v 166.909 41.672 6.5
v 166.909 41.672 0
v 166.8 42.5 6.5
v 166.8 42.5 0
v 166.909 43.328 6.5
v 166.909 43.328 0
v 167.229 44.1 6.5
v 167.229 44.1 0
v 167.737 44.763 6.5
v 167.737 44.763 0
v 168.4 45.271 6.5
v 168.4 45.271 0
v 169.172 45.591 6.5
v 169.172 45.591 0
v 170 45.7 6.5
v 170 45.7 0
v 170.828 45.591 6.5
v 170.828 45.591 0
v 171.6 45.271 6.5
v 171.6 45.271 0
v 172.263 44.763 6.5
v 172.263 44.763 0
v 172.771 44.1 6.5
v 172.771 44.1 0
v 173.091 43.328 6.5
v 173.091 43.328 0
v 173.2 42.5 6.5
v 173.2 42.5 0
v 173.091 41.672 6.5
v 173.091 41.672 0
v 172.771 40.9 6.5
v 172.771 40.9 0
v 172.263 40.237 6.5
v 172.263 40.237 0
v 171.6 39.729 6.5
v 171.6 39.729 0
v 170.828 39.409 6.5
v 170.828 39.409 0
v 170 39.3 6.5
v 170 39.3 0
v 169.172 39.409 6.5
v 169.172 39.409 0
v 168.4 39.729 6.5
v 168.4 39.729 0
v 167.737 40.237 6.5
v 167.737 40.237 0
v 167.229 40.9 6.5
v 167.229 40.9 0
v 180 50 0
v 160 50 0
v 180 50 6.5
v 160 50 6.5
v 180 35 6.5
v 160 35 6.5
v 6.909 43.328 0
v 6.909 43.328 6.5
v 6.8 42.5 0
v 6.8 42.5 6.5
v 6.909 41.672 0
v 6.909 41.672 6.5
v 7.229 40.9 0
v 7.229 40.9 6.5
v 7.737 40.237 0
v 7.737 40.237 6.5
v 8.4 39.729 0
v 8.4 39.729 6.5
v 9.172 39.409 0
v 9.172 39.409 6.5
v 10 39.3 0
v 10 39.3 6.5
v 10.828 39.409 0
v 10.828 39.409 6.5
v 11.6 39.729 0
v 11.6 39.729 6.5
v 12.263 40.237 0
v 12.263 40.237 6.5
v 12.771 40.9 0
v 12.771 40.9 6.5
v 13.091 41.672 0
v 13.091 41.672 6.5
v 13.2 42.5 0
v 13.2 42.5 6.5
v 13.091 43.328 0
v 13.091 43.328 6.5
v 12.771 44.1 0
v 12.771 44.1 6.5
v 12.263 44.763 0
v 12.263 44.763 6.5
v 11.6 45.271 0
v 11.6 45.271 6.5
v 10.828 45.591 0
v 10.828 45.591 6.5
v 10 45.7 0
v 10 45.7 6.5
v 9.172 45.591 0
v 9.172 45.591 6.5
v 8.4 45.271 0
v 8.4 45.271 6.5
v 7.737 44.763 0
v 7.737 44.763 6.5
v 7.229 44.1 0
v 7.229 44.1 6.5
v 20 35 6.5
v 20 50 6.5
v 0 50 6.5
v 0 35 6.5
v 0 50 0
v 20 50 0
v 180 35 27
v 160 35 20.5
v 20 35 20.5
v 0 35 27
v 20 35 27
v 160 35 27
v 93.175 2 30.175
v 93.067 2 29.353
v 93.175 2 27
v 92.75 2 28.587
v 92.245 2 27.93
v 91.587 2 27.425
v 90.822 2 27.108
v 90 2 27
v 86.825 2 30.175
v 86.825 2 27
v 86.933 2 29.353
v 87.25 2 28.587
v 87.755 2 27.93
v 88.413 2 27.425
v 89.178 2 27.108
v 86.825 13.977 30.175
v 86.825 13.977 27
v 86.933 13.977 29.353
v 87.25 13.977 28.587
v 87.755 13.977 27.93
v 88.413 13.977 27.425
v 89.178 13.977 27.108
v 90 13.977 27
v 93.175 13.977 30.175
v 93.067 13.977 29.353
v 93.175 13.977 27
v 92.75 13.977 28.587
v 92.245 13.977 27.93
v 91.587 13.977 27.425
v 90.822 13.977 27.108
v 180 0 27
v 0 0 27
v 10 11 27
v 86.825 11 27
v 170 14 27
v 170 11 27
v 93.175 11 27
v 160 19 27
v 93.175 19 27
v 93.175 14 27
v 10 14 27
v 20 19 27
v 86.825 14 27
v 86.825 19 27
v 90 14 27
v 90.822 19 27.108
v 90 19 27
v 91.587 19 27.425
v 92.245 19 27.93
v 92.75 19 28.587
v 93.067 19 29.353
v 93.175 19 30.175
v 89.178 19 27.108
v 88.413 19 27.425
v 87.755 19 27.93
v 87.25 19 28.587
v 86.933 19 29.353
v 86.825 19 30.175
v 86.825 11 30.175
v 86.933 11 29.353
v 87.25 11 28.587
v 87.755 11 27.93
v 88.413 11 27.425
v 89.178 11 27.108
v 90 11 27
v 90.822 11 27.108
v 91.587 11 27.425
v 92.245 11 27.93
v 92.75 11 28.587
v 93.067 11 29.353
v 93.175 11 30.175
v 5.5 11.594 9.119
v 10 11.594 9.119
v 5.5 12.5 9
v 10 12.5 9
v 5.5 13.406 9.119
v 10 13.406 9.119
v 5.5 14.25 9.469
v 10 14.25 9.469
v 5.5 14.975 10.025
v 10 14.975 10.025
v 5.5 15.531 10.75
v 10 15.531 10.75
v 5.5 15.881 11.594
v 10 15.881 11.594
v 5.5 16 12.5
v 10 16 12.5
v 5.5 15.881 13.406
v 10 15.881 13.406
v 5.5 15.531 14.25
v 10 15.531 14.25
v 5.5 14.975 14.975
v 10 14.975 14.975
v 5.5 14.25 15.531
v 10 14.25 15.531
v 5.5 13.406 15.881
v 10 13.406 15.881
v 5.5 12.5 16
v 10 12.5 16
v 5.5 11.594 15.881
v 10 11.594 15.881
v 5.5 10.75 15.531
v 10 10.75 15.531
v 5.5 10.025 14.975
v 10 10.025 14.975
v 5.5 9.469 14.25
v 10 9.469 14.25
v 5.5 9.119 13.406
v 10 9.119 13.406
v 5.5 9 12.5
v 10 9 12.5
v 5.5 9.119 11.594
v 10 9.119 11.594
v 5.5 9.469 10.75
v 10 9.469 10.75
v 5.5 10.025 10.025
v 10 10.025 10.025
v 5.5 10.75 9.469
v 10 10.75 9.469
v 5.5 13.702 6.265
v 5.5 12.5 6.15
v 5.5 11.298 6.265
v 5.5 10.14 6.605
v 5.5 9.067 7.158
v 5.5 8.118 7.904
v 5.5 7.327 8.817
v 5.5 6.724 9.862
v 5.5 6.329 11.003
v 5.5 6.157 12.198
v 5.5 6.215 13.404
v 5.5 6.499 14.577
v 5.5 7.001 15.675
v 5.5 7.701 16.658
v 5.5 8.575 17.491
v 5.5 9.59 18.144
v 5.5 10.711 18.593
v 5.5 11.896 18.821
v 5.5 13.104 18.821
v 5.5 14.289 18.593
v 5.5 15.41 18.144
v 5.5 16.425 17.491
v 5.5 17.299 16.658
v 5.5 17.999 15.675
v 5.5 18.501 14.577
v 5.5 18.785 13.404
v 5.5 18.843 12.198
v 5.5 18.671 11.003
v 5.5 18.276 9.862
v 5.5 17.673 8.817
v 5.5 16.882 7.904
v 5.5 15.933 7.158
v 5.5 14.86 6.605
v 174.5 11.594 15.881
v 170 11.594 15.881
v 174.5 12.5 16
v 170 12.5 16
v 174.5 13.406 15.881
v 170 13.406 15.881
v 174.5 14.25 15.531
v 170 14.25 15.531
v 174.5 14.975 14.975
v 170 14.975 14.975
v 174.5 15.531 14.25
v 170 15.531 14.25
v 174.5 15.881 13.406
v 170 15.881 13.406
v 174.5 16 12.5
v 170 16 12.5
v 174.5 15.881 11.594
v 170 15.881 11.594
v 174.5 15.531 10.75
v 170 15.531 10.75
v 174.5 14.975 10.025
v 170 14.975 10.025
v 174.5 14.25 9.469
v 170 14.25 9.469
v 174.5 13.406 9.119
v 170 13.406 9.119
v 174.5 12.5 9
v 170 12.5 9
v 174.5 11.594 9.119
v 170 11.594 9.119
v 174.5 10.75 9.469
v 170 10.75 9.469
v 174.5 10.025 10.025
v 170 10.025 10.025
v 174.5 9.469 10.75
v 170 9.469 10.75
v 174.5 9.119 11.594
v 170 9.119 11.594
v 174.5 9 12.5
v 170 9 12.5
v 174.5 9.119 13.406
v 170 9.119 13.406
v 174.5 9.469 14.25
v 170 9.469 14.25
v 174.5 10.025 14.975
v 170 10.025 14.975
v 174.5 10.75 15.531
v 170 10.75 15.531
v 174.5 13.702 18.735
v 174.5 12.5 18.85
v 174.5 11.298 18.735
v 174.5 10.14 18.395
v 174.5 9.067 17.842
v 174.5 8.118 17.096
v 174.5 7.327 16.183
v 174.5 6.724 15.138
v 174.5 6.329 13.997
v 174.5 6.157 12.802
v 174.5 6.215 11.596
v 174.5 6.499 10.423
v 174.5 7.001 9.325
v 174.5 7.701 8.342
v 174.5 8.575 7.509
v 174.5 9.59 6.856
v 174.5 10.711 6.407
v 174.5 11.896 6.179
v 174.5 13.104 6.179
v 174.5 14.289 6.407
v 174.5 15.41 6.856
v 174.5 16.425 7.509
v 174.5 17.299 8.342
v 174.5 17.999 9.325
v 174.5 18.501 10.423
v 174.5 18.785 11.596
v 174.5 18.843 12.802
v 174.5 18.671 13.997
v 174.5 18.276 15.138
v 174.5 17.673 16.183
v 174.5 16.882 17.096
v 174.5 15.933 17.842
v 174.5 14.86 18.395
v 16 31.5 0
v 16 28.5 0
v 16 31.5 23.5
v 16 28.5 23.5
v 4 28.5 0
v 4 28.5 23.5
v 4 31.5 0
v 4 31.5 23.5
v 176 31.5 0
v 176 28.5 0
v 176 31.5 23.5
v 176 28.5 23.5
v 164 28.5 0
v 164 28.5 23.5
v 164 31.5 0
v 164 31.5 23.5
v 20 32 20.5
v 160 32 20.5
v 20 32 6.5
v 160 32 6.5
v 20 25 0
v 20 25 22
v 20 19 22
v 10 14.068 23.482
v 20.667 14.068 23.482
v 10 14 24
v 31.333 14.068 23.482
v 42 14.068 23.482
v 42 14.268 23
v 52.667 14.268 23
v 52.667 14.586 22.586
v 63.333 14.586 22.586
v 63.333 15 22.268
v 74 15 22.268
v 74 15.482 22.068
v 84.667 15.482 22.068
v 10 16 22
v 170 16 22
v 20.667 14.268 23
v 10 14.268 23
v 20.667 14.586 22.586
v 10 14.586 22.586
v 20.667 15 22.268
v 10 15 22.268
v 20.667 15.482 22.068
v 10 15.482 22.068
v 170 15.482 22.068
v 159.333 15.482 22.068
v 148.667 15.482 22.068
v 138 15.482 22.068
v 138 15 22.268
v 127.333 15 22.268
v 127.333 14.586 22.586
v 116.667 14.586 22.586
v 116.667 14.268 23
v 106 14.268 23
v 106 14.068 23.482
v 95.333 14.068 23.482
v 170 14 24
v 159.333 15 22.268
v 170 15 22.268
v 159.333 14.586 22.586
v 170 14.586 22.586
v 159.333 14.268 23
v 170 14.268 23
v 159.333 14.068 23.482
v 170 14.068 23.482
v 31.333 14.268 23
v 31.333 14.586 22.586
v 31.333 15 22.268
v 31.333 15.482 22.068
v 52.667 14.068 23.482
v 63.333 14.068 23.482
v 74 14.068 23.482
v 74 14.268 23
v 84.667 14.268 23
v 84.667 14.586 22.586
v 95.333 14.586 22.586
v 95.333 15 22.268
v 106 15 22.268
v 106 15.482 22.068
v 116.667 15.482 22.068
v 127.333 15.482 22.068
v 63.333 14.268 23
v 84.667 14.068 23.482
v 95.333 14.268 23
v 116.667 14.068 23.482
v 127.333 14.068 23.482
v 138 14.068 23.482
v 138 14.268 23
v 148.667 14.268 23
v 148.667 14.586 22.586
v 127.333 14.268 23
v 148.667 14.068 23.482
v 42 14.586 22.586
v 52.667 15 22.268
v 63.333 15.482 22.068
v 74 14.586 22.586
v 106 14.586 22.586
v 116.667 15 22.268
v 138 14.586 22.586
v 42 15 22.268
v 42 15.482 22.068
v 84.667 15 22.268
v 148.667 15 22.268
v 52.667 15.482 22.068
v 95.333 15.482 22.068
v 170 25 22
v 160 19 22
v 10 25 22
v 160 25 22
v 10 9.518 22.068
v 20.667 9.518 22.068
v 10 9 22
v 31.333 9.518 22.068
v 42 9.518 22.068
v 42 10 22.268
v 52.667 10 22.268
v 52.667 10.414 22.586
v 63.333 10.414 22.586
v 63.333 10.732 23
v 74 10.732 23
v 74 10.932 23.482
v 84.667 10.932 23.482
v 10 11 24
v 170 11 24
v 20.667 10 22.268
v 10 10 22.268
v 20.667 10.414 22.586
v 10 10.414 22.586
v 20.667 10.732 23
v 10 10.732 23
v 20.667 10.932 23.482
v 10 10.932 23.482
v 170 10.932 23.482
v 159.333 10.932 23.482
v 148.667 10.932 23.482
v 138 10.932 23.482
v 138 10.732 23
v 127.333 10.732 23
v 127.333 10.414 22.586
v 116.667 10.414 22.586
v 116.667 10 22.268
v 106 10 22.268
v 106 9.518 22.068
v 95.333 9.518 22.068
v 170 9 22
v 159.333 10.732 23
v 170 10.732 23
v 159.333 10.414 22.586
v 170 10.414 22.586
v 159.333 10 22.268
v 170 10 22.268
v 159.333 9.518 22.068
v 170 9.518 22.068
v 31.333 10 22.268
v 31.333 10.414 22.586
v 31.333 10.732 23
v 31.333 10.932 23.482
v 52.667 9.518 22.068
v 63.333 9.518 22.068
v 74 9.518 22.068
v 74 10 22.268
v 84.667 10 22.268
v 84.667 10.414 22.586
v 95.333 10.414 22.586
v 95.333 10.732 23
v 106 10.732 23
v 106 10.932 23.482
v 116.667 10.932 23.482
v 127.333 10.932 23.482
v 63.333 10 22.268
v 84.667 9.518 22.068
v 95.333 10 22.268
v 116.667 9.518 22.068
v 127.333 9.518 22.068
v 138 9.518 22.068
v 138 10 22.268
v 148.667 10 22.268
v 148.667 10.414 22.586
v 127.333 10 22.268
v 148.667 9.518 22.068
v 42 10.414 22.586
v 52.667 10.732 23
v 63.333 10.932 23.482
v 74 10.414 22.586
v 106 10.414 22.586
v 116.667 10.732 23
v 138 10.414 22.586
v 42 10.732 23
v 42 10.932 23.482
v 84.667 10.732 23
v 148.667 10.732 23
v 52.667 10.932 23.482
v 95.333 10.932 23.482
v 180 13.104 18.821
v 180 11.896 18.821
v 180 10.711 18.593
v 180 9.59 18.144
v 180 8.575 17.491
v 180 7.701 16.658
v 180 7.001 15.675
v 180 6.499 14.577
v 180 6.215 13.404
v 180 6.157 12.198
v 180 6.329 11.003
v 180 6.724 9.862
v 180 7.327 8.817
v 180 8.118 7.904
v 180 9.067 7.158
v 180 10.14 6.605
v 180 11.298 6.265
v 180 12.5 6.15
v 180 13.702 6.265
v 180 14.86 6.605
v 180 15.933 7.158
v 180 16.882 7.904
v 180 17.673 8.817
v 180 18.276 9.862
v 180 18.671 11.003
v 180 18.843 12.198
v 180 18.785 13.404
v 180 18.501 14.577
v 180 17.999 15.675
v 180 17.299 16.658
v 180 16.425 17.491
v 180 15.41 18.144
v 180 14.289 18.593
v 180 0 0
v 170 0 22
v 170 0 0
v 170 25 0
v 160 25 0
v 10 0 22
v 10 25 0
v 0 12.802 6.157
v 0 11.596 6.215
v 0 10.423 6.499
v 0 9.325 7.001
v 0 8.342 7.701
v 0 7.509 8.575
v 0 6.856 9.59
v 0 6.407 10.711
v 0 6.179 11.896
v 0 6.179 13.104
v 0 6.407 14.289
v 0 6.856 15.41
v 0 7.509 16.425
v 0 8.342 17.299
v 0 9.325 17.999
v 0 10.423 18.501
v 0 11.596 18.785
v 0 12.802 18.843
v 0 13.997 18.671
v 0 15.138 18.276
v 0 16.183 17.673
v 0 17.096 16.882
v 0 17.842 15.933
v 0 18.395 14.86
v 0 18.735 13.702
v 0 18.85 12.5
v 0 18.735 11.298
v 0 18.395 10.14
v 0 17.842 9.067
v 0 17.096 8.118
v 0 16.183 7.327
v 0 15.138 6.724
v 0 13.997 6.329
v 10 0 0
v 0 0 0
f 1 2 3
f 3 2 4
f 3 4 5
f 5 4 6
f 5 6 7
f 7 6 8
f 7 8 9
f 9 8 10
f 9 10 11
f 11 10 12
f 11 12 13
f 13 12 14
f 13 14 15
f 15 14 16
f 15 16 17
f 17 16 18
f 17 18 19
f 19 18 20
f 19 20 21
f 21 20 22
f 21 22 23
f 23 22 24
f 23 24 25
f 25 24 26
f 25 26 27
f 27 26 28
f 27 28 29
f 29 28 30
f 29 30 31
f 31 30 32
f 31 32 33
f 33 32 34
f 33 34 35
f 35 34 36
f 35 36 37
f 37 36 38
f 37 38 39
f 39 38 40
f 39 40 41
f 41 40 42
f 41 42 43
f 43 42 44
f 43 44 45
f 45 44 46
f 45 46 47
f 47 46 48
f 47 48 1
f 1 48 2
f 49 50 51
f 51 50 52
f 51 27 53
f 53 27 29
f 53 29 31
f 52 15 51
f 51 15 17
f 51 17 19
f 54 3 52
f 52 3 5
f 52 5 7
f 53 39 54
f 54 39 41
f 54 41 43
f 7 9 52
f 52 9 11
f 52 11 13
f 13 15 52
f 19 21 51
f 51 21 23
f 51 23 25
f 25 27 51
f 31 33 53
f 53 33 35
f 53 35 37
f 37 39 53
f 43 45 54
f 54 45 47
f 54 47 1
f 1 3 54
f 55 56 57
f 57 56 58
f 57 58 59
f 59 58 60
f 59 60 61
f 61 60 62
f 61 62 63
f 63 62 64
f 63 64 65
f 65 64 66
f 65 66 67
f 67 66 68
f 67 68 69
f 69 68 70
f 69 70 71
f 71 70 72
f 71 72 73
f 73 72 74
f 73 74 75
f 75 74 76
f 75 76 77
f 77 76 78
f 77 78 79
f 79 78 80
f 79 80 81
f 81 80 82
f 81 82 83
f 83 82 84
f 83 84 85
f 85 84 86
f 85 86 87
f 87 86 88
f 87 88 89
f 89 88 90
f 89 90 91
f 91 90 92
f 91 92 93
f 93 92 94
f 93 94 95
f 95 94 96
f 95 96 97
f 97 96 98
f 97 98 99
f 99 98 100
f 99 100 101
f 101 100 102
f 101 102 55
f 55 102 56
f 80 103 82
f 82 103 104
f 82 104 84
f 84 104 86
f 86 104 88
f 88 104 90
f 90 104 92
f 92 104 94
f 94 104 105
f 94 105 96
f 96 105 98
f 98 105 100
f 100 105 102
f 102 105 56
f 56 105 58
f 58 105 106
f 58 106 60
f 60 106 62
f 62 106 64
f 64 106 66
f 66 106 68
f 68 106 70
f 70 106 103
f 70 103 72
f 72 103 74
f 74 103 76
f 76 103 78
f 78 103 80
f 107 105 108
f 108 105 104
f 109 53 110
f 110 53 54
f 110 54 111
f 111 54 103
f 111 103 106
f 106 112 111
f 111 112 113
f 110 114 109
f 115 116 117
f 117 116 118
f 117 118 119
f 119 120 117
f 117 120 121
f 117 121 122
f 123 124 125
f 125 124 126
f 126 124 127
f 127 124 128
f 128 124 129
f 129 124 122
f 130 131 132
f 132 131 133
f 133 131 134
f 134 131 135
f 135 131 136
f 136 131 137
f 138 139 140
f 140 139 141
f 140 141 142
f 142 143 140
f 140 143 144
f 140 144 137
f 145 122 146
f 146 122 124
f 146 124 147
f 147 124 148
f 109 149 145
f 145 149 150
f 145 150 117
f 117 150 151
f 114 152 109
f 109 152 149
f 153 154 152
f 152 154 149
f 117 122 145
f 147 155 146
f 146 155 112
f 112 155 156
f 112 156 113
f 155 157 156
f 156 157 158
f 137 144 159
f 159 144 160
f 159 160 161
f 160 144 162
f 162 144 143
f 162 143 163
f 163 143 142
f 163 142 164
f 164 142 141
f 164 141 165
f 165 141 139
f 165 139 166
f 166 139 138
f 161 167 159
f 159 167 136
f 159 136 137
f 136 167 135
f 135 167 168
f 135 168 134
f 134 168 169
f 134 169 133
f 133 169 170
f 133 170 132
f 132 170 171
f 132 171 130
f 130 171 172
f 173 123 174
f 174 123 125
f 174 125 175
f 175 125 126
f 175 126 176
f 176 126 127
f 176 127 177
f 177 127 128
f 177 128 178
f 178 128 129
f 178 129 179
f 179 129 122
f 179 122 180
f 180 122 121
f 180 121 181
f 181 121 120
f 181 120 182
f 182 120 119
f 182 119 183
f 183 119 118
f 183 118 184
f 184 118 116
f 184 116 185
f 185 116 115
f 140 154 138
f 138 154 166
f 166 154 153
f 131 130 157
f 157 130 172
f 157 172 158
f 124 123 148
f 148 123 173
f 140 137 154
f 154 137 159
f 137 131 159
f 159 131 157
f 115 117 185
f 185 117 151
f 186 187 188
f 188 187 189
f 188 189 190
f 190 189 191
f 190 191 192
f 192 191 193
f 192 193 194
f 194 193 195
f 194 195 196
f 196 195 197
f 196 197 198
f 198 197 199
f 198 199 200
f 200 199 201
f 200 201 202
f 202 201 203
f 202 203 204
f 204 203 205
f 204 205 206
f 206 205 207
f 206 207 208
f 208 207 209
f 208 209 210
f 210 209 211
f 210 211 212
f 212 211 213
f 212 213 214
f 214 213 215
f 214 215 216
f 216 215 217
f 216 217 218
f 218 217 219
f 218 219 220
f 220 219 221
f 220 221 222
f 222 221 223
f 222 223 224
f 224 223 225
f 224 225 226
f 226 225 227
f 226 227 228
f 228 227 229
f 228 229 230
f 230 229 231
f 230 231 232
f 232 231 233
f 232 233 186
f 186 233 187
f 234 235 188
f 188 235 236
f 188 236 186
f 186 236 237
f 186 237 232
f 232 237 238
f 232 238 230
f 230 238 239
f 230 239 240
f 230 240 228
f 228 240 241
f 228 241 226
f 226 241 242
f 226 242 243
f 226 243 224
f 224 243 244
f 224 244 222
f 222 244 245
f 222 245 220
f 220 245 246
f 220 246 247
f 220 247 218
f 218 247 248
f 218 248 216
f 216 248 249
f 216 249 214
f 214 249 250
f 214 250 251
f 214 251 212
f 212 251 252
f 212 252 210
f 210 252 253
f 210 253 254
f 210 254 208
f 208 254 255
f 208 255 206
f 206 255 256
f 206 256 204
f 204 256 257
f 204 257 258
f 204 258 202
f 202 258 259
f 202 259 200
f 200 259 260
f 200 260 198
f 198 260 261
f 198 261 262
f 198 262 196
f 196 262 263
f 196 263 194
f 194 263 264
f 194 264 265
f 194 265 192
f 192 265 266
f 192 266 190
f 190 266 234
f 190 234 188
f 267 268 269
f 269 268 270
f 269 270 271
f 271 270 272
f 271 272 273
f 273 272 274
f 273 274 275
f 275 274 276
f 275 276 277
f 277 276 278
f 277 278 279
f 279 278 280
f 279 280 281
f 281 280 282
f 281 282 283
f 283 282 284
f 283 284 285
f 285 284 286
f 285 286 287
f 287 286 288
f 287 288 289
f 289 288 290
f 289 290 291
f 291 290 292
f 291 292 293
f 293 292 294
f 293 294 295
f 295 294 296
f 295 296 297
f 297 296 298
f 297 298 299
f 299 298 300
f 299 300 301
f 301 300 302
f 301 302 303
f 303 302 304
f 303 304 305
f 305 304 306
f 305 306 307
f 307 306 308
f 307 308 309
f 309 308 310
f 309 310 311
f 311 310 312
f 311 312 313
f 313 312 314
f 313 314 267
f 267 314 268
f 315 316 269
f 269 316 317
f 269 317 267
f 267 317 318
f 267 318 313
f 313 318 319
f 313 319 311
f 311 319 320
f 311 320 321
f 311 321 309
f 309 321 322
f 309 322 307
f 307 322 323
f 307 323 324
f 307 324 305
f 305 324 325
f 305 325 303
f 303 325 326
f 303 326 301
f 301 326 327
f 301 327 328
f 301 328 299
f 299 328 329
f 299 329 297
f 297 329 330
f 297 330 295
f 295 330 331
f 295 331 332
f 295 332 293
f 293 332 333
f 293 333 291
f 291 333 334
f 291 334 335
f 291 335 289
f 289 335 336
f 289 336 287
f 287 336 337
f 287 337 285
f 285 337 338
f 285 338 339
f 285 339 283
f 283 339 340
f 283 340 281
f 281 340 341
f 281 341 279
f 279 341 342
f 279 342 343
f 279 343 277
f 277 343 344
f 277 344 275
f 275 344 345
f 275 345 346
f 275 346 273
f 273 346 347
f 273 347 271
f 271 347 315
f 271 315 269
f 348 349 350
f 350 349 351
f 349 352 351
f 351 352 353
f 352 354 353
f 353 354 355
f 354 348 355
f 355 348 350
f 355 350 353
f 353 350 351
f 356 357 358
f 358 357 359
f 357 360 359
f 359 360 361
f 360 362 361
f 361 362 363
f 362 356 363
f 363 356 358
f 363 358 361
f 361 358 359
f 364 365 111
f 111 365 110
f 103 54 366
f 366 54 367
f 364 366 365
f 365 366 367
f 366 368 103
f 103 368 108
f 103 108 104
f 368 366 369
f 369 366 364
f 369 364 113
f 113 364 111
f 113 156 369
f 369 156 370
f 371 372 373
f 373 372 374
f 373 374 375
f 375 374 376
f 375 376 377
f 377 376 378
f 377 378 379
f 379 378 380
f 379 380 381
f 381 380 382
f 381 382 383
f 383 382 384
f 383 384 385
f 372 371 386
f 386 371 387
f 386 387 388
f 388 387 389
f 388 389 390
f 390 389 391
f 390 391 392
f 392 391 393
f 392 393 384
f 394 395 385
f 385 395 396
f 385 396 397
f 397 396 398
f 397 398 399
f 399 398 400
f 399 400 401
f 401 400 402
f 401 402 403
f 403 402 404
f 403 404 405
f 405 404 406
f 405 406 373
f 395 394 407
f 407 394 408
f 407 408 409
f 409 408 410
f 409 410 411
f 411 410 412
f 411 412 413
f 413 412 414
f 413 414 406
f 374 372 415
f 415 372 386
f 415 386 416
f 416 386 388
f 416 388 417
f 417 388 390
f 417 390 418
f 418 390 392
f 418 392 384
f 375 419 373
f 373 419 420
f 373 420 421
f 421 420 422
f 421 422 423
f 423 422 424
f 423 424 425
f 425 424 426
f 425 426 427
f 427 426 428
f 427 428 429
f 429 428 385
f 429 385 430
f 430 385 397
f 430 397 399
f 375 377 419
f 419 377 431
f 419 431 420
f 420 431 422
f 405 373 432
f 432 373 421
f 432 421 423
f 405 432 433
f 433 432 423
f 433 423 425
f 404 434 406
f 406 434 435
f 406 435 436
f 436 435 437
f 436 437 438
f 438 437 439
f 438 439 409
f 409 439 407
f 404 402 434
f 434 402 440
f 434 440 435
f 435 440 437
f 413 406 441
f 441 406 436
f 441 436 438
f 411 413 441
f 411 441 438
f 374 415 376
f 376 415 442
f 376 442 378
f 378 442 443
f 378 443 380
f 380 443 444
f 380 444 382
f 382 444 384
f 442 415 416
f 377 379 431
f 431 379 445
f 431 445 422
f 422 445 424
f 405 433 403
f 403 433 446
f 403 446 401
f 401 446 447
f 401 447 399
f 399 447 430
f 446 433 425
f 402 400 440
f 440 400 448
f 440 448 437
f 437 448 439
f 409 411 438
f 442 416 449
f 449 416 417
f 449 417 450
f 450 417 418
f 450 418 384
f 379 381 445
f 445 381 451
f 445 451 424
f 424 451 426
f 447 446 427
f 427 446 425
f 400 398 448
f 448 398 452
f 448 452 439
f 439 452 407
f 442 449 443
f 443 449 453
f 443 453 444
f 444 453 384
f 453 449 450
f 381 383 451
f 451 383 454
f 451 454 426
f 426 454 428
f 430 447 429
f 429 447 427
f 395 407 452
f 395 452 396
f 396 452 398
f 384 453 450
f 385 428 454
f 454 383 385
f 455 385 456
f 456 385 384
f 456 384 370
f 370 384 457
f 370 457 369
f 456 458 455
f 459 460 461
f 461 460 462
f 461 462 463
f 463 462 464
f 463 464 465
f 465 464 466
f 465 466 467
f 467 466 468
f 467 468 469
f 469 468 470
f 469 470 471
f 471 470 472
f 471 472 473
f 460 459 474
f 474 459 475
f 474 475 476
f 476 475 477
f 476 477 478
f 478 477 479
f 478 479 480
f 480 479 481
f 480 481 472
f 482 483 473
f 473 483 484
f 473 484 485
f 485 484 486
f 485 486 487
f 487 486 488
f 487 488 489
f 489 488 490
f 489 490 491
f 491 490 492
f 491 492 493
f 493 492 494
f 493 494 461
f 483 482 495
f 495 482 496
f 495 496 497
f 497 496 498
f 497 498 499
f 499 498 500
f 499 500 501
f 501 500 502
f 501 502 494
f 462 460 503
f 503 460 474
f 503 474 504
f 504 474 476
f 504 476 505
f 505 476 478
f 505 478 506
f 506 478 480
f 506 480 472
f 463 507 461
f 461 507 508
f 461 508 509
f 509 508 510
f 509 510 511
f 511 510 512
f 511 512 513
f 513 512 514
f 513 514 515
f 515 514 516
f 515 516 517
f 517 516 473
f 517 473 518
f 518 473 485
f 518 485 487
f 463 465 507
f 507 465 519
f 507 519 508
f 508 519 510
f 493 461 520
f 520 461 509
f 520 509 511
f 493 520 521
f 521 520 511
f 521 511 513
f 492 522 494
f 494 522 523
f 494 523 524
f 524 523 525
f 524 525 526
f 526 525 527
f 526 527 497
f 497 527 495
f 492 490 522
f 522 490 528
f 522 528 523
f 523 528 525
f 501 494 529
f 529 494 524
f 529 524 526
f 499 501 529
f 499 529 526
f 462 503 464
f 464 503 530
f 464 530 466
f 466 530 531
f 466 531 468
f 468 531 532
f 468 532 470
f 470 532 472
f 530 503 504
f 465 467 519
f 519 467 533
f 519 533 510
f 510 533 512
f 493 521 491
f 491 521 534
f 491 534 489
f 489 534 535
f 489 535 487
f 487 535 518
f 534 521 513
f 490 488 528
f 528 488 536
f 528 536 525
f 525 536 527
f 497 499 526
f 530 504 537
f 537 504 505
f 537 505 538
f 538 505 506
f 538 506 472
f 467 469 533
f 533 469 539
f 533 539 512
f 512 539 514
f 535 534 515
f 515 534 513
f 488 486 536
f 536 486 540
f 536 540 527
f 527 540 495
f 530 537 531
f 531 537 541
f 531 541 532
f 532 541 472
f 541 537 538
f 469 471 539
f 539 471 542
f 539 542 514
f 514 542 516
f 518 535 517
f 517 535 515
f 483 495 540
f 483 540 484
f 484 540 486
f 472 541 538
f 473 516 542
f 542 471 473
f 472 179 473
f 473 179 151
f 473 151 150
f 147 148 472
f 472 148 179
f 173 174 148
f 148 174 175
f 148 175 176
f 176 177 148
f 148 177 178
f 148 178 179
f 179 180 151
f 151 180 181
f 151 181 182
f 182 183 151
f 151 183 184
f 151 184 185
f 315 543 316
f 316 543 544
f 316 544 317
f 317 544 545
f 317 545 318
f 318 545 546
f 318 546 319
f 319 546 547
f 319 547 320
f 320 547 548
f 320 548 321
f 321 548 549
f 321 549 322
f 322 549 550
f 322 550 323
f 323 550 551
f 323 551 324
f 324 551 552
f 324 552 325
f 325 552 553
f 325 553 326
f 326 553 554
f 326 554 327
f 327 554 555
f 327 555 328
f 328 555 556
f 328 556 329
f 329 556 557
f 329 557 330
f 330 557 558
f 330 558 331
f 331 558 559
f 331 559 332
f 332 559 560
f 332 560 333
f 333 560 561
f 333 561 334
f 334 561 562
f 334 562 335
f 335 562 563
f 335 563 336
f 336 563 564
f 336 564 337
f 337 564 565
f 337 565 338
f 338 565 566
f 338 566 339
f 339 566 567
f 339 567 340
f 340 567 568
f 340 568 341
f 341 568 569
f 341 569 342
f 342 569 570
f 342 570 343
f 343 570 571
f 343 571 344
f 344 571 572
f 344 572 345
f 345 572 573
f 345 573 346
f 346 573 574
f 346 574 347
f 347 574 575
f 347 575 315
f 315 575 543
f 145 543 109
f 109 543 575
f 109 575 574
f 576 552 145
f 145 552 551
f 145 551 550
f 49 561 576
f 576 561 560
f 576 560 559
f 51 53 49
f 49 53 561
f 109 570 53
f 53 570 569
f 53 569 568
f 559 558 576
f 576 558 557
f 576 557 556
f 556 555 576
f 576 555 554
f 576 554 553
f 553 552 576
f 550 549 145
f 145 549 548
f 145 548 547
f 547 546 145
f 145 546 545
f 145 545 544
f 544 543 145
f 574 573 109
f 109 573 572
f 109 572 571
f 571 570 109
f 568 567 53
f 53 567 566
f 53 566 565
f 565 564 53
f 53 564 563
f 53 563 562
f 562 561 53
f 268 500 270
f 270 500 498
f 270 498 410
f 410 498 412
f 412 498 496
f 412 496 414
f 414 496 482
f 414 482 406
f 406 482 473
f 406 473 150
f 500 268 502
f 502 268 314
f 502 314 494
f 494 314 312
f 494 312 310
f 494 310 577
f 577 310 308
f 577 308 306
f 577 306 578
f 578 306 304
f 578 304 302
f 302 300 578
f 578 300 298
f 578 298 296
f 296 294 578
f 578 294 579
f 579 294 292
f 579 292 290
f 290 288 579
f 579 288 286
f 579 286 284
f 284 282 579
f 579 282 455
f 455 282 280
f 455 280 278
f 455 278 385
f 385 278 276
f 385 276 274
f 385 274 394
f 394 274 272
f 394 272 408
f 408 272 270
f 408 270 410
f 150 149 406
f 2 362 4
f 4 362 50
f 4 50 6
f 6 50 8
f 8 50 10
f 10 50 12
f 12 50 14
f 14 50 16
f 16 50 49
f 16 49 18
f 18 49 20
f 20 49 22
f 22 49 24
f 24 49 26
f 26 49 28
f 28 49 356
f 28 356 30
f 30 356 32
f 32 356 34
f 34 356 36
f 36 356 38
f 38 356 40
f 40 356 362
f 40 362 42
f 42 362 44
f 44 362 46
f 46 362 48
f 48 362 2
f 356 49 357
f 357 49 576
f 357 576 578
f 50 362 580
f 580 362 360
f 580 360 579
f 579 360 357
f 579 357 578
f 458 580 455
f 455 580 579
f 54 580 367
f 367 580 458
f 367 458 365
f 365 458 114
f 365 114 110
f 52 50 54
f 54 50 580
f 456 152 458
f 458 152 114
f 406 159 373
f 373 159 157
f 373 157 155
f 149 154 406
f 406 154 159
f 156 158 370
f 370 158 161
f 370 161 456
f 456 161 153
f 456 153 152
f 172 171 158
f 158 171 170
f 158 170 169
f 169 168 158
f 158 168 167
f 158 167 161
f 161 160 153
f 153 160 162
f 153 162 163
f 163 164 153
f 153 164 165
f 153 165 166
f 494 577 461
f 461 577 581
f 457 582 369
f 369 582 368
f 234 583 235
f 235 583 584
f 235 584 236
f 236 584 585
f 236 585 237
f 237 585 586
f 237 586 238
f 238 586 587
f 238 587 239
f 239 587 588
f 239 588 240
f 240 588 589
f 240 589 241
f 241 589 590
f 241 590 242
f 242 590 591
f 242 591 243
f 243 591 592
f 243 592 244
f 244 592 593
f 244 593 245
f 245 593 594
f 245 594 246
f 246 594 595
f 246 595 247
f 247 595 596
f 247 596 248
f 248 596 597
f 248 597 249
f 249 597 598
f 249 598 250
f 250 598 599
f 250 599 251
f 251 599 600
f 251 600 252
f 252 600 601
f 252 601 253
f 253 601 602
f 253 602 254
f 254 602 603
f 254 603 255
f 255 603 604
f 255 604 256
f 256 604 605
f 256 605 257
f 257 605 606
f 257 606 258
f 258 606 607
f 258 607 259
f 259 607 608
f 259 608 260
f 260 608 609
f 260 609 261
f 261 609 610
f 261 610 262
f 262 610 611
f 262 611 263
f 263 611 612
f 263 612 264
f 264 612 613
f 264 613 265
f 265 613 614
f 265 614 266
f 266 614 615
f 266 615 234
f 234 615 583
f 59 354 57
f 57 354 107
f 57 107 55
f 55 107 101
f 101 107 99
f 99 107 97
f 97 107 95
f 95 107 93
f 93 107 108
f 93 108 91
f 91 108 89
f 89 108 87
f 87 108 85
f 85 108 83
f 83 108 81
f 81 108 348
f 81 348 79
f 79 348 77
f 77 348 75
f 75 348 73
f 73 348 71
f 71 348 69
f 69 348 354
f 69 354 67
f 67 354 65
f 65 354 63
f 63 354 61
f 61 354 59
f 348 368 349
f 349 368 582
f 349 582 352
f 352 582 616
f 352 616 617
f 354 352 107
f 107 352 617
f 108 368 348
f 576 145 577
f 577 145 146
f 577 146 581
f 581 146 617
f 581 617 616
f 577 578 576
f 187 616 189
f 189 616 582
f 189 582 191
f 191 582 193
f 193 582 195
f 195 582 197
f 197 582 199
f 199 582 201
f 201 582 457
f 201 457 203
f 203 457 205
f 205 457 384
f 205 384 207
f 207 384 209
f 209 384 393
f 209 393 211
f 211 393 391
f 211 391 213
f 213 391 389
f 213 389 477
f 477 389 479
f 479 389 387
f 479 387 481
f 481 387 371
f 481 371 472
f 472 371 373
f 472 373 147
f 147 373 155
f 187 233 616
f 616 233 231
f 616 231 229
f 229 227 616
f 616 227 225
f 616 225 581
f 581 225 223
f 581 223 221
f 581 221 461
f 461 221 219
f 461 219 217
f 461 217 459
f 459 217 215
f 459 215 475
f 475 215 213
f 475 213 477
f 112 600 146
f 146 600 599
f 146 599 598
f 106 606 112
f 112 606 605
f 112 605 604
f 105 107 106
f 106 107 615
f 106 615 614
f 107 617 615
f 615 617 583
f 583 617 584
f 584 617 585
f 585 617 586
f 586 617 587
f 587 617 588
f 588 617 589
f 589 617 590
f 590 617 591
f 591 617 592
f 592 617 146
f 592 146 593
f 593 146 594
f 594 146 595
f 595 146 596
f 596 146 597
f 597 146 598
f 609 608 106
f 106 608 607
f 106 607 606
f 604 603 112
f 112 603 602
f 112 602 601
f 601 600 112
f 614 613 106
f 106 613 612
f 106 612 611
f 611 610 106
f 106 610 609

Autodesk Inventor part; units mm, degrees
ref_plane "YZ Plane" through (0, 0, 0) normal (1, 0, 0) x (0, 1, 0)
ref_plane "XZ Plane" through (0, 0, 0) normal (0, 1, 0) x (-1, 0, 0)
ref_plane "XY Plane" through (0, 0, 0) normal (0, 0, 1) x (1, 0, 0)
sketch "Sketch1" plane through (0, 0, 0) normal (1, 0, 0) x (0, 1, 0)
  line L0 (0, 0) -> (35, 0)
  line L1 (35, 0) -> (35, 27)
  line L2 (35, 27) -> (0, 27)
  line L3 (0, 27) -> (0, 0)
  line L4 (0, 27) -> (25, 27) construction
  line L5 (25, 27) -> (25, 0) construction
  line L6 (25, 0) -> (0, 0) construction
  line L7 (0, 0) -> (0, 27) construction
  circle A0 centre (12.5, 12.5) radius 6.35
  dimension "d0" = 35
  dimension "d1" = 27
  dimension "d2" = 25
  dimension "d3" = 12.7
extrude "Extrusion1" add sketch "Sketch1" along normal blind 10
sketch "Sketch2" plane through (10, 0, 0) normal (1, 0, 0) x (0, 0, -1)
  line L0 (0, 35) -> (-27, 35) projected
  line L1 (0, 0) -> (0, 35) projected
  line L2 (-27, 35) -> (0, 35)
  line L3 (0, 35) -> (0, 25)
  line L4 (0, 25) -> (-27, 25)
  line L5 (-27, 25) -> (-27, 35)
  dimension "d6" = 10
extrude "Extrusion2" add sketch "Sketch2" along normal blind 10
sketch "Sketch3" plane through (10, 0, 0) normal (1, 0, 0) x (0, 0, -1)
  point P0 (0, 0)
sketch "Sketch4" plane through (0, 0, 0) normal (0, 0, -1) x (-1, 0, 0)
  point P0 (0, 0)
sketch "Sketch5" plane through (10, 0, 0) normal (1, 0, 0) x (0, 0, -1)
  point P0 (0, 0)
sketch "Sketch6" plane through (10, 0, 0) normal (1, 0, 0) x (0, 0, -1)
  line L0 (-27, 25) -> (-27, 0) projected
  line L1 (-27, 0) -> (-22, 0)
  line L2 (-22, 0) -> (-22, 11)
  line L3 (-22, 11) -> (-27, 11)
  line L4 (-27, 11) -> (-27, 0)
  line L5 (-22, 14) -> (-27, 14)
  line L6 (-27, 14) -> (-27, 19)
  line L7 (-27, 19) -> (-22, 19)
  line L8 (-22, 19) -> (-22, 14)
  point P0 (0, 0)
  dimension "d9" = 5
  dimension "d10" = 11
  dimension "d11" = 5
extrude "Extrusion3" add sketch "Sketch6" along normal blind 150
sketch "Sketch7" plane through (10, 19, 27) normal (0, 1, 0) x (1, 0, 0)
  line L0 (-10, 0) -> (10, 0) projected
  line L1 (0, 5) -> (150, 5) projected
  line L2 (0, 0) -> (10, 0)
  line L3 (10, 0) -> (10, 5)
  line L4 (10, 5) -> (0, 5)
  line L5 (0, 5) -> (0, 0)
  point P0 (-10, 27)
  dimension "d14" = 10
extrude "Extrusion4" add sketch "Sketch7" along normal blind 7.5
sketch "Sketch8" plane through (160, 0, 0) normal (1, 0, 0) x (0, 0, -1)
  line L0 (-27, 14) -> (-22, 14) projected
  line L1 (-27, 14) -> (-22, 14)
  line L2 (-22, 25) -> (-22, 14) projected
  line L3 (-22, 14) -> (-22, 25)
  line L4 (-22, 25) -> (0, 25) projected
  line L5 (-22, 25) -> (0, 25)
  line L6 (0, 25) -> (0, 35) projected
  line L7 (0, 25) -> (0, 35)
  line L8 (0, 35) -> (-27, 35)
  line L9 (-27, 35) -> (-27, 14)
  line L10 (-22, 11) -> (-22, 0) projected
  line L11 (-27, 0) -> (-22, 0)
  line L12 (-22, 0) -> (-22, 11)
  line L13 (-22, 11) -> (-27, 11)
  line L14 (-27, 11) -> (-27, 0)
  point P0 (0, 0)
  dimension "d9" = 5
  dimension "d10" = 11
  dimension "d11" = 5
extrude "Extrusion5" add sketch "Sketch8" along normal blind 10
sketch "Sketch9" plane through (170, 0, 0) normal (1, 0, 0) x (0, 0, -1)
  line L0 (0, 35) -> (-27, 35) projected
  line L1 (-27, 35) -> (0, 35)
  line L2 (0, 35) -> (0, 0)
  line L3 (0, 0) -> (-27, 0)
  line L4 (-27, 0) -> (-27, 35)
  circle A0 centre (-12.5, 12.5) radius 6.35 projected
  circle A1 centre (-12.5, 12.5) radius 6.35
extrude "Extrusion6" add sketch "Sketch9" along normal blind 10
fillet "Fillet1" radius 2 2 edges at (90, 11, 22) (90, 14, 22)
sketch "Sketch10" plane through (20, 0, 0) normal (1, 0, 0) x (0, 0, -1)
  line L0 (0, 35) -> (-27, 35) projected
  line L1 (-13.5, 35) -> (-20.5, 35)
  line L2 (-20.5, 35) -> (-6.5, 35)
  line L3 (-20.5, 35) -> (-6.5, 35)
  line L4 (-6.5, 35) -> (-6.5, 32)
  line L5 (-6.5, 32) -> (-20.5, 32)
  line L6 (-20.5, 32) -> (-20.5, 35)
  point P0 (0, 0)
  dimension "d22" = 7
  dimension "d23" = 14
  dimension "d24" = 3
extrude "Extrusion7" add sketch "Sketch10" along normal blind 140
sketch "Sketch11" plane through (0, 35, 27) normal (0, 1, 0) x (1, 0, 0)
  point P0 (0, 27)
sketch "Sketch12" plane through (160, 25, 0) normal (0, 0, -1) x (-1, 0, 0)
  line L0 (-4, 3.5) -> (-16, 3.5)
  line L1 (-16, 3.5) -> (-16, 6.5)
  line L2 (-16, 6.5) -> (-4, 6.5)
  line L3 (-4, 6.5) -> (-4, 3.5)
  line L4 (-4, 3.5) -> (-16, 6.5) construction
  line L5 (-16, 3.5) -> (-4, 6.5) construction
  line L6 (156, 6.5) -> (144, 6.5)
  line L7 (144, 6.5) -> (144, 3.5)
  line L8 (144, 3.5) -> (156, 3.5)
  line L9 (156, 3.5) -> (156, 6.5)
  line L10 (156, 6.5) -> (144, 3.5) construction
  line L11 (144, 6.5) -> (156, 3.5) construction
  point P0 (160, -25)
  point P1 (-10, 5)
  point P2 (150, 5)
  dimension "d27" = 12
  dimension "d28" = 3
  dimension "d29" = 12
  dimension "d30" = 3
extrude "Extrusion8" cut sketch "Sketch12" against normal blind 23.5
sketch "Sketch13" plane through (0, 0, 0) normal (-1, 0, 0) x (0, 0, 1)
  circle A0 centre (12.5, 12.5) radius 6.35 construction
  circle A1 centre (12.5, 12.5) radius 20.6375 construction
  point P0 (0, 0)
  dimension "d33" = 41.275
sketch "Sketch14" plane through (170, 0, 0) normal (-1, 0, 0) x (0, 0, 1)
  circle A0 centre (12.5, 12.5) radius 6.35 projected
  circle A1 centre (12.5, 12.5) radius 6.35
  circle A2 centre (12.5, 12.5) radius 3.5
  point P0 (0, 0)
  dimension "d34" = 7
extrude "Extrusion9" add sketch "Sketch14" against normal blind 4.5
sketch "Sketch15" plane through (10, 0, 0) normal (1, 0, 0) x (0, 0, -1)
  circle A0 centre (-12.5, 12.5) radius 3.5 projected
  circle A1 centre (-12.5, 12.5) radius 6.35
  circle A2 centre (-12.5, 12.5) radius 3.5
  point P0 (0, 0)
  dimension "d37" = 7
extrude "Extrusion10" add sketch "Sketch15" against normal blind 4.5
sketch "Sketch16" plane through (0, 35, 27) normal (0, 1, 0) x (1, 0, 0)
  point P0 (0, 27)
sketch "Sketch17" plane through (20, 19, 27) normal (0, 1, 0) x (1, 0, 0)
  line L0 (-10, 0) -> (150, 0) projected
  circle A0 centre (70, -3.175) radius 3.175
  line L1 (66.825, 0) -> (73.175, 0)
  line L2 (73.175, 0) -> (73.175, -3.175)
  line L3 (73.175, -3.175) -> (66.825, -3.175)
  line L4 (66.825, -3.175) -> (66.825, 0)
  point P0 (-20, 27)
  point P1 (70, 0)
  point P2 (66.825, -3.175)
  point P3 (73.175, 0)
extrude "Extrusion11" add sketch "Sketch17" against normal blind 19 contours L0 A0 L4 | L0 L2 A0
sketch "Sketch18" plane through (0, 0, 0) normal (-1, 0, 0) x (0, 0, 1)
  point P0 (0, 0)
sketch "Sketch19" plane through (160, 19, 27) normal (0, 0, 1) x (1, 0, 0)
  line L0 (-150, -8) -> (10, -8) projected
  line L1 (-74.7441, -5.023) -> (-65.8367, -5.023)
  line L2 (-65.8367, -5.023) -> (-65.8367, -8)
  line L3 (-65.8367, -8) -> (-74.7441, -8)
  line L4 (-74.7441, -8) -> (-74.7441, -5.023)
  line L5 (-150, -19) -> (10, -19) projected
  line L6 (-74.2056, -19) -> (-65.8367, -19)
  line L7 (-65.8367, -19) -> (-65.8367, -17)
  line L8 (-65.8367, -17) -> (-74.2056, -17)
  line L9 (-74.2056, -17) -> (-74.2056, -19)
  point P0 (-160, -19)
  dimension "d42" = 2
extrude "Extrusion12" cut sketch "Sketch19" along normal blind 19
sketch "Sketch20" plane through (0, 35, 27) normal (0, 1, 0) x (1, 0, 0)
  line L0 (0, 0) -> (0, 27) projected
  line L1 (20, 20.5) -> (160, 20.5) projected
  line L2 (0, 27) -> (20, 27)
  line L3 (20, 27) -> (20, 20.5)
  line L4 (20, 20.5) -> (0, 20.5)
  line L5 (0, 20.5) -> (0, 27)
extrude "Extrusion13" add sketch "Sketch20" along normal blind 15
sketch "Sketch21" plane through (0, 35, 6.5) normal (0, 0, 1) x (1, 0, 0)
  line L0 (0, 0) -> (20, 0) construction
  line L1 (20, 15) -> (0, 15) construction
  line L2 (0, 0) -> (20, 15) construction
  circle A0 centre (10, 7.5) radius 3.2
  point P0 (0, -35)
  dimension "d47" = 6.4
extrude "Extrusion14" cut sketch "Sketch21" against normal blind 15
sketch "Sketch22" plane through (160, 25, 0) normal (0, 0, -1) x (-1, 0, 0)
  line L0 (-20, 10) -> (-20, -25) projected
  line L1 (-20, 10) -> (0, 10)
  line L2 (0, 10) -> (0, 25)
  line L3 (0, 25) -> (-20, 25)
  line L4 (-20, 25) -> (-20, 10)
  circle A0 centre (-10, 17.5) radius 3.2
  point P0 (160, -25)
  dimension "d50" = 20
  dimension "d51" = 15
  dimension "d52" = 6.4
extrude "Extrusion15" add sketch "Sketch22" against normal blind 6.5
properties part number "_3DPrint"
